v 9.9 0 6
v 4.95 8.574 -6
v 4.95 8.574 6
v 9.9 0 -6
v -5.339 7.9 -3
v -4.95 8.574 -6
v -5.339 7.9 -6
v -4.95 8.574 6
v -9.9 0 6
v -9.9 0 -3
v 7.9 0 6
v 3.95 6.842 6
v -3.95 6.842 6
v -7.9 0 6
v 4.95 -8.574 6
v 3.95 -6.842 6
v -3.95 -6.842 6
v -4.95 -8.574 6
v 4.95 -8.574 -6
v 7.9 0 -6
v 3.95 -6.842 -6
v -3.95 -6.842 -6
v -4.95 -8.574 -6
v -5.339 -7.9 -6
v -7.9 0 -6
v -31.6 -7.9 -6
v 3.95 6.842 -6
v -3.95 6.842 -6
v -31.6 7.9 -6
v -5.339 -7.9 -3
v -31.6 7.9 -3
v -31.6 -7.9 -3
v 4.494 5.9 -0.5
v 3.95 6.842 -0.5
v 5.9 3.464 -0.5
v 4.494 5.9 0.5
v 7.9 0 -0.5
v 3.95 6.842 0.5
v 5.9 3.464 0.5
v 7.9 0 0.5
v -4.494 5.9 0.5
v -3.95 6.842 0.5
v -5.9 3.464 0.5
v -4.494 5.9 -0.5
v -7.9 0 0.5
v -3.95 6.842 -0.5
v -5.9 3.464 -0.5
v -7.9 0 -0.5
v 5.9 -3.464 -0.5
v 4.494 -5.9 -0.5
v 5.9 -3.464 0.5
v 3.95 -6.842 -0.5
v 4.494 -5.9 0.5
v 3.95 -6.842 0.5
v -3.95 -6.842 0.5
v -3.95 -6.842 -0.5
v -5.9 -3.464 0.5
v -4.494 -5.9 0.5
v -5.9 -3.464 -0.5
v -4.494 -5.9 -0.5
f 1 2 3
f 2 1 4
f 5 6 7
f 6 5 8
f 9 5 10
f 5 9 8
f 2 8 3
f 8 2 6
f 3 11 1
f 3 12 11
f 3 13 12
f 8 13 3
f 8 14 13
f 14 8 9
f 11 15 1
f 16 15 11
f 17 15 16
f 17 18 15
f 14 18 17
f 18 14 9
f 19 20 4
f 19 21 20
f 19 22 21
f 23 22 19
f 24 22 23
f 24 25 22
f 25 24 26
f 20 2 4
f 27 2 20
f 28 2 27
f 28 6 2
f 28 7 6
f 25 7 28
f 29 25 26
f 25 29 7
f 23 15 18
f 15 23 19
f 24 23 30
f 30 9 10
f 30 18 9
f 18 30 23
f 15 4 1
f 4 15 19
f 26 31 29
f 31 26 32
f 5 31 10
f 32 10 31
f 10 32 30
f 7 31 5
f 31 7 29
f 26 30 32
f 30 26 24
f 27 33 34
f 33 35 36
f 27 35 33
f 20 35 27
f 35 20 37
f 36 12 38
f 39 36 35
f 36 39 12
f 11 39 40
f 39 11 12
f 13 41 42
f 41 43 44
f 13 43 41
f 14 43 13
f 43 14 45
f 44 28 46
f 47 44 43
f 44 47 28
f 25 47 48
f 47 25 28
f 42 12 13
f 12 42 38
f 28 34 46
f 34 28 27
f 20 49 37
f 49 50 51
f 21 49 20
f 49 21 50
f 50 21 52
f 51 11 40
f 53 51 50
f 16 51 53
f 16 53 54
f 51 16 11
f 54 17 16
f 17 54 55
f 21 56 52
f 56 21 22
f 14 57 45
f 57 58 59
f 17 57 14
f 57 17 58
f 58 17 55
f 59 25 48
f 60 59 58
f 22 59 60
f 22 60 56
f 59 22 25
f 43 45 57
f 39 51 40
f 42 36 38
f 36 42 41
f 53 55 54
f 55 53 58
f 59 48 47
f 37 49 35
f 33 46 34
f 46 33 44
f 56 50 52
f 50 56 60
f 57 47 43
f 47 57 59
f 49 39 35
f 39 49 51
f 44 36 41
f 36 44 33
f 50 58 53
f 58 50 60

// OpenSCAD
nut_size	=	15.8;
$fn=6;
module nut(){
	cylinder(d=nut_size, center=true, h=13);
}

module piece(){
	cylinder(d=nut_size+4, center=true, h=12);
	translate([-nut_size,0,-4.5]) cube([nut_size*2,nut_size,3], center=true);
}

difference(){
	piece();
	nut();
}

difference(){
	intersection(){
		cube([nut_size,nut_size,1], center=true);
		nut();
	}
	cube([nut_size-4,nut_size-4,1], center=true);
}
